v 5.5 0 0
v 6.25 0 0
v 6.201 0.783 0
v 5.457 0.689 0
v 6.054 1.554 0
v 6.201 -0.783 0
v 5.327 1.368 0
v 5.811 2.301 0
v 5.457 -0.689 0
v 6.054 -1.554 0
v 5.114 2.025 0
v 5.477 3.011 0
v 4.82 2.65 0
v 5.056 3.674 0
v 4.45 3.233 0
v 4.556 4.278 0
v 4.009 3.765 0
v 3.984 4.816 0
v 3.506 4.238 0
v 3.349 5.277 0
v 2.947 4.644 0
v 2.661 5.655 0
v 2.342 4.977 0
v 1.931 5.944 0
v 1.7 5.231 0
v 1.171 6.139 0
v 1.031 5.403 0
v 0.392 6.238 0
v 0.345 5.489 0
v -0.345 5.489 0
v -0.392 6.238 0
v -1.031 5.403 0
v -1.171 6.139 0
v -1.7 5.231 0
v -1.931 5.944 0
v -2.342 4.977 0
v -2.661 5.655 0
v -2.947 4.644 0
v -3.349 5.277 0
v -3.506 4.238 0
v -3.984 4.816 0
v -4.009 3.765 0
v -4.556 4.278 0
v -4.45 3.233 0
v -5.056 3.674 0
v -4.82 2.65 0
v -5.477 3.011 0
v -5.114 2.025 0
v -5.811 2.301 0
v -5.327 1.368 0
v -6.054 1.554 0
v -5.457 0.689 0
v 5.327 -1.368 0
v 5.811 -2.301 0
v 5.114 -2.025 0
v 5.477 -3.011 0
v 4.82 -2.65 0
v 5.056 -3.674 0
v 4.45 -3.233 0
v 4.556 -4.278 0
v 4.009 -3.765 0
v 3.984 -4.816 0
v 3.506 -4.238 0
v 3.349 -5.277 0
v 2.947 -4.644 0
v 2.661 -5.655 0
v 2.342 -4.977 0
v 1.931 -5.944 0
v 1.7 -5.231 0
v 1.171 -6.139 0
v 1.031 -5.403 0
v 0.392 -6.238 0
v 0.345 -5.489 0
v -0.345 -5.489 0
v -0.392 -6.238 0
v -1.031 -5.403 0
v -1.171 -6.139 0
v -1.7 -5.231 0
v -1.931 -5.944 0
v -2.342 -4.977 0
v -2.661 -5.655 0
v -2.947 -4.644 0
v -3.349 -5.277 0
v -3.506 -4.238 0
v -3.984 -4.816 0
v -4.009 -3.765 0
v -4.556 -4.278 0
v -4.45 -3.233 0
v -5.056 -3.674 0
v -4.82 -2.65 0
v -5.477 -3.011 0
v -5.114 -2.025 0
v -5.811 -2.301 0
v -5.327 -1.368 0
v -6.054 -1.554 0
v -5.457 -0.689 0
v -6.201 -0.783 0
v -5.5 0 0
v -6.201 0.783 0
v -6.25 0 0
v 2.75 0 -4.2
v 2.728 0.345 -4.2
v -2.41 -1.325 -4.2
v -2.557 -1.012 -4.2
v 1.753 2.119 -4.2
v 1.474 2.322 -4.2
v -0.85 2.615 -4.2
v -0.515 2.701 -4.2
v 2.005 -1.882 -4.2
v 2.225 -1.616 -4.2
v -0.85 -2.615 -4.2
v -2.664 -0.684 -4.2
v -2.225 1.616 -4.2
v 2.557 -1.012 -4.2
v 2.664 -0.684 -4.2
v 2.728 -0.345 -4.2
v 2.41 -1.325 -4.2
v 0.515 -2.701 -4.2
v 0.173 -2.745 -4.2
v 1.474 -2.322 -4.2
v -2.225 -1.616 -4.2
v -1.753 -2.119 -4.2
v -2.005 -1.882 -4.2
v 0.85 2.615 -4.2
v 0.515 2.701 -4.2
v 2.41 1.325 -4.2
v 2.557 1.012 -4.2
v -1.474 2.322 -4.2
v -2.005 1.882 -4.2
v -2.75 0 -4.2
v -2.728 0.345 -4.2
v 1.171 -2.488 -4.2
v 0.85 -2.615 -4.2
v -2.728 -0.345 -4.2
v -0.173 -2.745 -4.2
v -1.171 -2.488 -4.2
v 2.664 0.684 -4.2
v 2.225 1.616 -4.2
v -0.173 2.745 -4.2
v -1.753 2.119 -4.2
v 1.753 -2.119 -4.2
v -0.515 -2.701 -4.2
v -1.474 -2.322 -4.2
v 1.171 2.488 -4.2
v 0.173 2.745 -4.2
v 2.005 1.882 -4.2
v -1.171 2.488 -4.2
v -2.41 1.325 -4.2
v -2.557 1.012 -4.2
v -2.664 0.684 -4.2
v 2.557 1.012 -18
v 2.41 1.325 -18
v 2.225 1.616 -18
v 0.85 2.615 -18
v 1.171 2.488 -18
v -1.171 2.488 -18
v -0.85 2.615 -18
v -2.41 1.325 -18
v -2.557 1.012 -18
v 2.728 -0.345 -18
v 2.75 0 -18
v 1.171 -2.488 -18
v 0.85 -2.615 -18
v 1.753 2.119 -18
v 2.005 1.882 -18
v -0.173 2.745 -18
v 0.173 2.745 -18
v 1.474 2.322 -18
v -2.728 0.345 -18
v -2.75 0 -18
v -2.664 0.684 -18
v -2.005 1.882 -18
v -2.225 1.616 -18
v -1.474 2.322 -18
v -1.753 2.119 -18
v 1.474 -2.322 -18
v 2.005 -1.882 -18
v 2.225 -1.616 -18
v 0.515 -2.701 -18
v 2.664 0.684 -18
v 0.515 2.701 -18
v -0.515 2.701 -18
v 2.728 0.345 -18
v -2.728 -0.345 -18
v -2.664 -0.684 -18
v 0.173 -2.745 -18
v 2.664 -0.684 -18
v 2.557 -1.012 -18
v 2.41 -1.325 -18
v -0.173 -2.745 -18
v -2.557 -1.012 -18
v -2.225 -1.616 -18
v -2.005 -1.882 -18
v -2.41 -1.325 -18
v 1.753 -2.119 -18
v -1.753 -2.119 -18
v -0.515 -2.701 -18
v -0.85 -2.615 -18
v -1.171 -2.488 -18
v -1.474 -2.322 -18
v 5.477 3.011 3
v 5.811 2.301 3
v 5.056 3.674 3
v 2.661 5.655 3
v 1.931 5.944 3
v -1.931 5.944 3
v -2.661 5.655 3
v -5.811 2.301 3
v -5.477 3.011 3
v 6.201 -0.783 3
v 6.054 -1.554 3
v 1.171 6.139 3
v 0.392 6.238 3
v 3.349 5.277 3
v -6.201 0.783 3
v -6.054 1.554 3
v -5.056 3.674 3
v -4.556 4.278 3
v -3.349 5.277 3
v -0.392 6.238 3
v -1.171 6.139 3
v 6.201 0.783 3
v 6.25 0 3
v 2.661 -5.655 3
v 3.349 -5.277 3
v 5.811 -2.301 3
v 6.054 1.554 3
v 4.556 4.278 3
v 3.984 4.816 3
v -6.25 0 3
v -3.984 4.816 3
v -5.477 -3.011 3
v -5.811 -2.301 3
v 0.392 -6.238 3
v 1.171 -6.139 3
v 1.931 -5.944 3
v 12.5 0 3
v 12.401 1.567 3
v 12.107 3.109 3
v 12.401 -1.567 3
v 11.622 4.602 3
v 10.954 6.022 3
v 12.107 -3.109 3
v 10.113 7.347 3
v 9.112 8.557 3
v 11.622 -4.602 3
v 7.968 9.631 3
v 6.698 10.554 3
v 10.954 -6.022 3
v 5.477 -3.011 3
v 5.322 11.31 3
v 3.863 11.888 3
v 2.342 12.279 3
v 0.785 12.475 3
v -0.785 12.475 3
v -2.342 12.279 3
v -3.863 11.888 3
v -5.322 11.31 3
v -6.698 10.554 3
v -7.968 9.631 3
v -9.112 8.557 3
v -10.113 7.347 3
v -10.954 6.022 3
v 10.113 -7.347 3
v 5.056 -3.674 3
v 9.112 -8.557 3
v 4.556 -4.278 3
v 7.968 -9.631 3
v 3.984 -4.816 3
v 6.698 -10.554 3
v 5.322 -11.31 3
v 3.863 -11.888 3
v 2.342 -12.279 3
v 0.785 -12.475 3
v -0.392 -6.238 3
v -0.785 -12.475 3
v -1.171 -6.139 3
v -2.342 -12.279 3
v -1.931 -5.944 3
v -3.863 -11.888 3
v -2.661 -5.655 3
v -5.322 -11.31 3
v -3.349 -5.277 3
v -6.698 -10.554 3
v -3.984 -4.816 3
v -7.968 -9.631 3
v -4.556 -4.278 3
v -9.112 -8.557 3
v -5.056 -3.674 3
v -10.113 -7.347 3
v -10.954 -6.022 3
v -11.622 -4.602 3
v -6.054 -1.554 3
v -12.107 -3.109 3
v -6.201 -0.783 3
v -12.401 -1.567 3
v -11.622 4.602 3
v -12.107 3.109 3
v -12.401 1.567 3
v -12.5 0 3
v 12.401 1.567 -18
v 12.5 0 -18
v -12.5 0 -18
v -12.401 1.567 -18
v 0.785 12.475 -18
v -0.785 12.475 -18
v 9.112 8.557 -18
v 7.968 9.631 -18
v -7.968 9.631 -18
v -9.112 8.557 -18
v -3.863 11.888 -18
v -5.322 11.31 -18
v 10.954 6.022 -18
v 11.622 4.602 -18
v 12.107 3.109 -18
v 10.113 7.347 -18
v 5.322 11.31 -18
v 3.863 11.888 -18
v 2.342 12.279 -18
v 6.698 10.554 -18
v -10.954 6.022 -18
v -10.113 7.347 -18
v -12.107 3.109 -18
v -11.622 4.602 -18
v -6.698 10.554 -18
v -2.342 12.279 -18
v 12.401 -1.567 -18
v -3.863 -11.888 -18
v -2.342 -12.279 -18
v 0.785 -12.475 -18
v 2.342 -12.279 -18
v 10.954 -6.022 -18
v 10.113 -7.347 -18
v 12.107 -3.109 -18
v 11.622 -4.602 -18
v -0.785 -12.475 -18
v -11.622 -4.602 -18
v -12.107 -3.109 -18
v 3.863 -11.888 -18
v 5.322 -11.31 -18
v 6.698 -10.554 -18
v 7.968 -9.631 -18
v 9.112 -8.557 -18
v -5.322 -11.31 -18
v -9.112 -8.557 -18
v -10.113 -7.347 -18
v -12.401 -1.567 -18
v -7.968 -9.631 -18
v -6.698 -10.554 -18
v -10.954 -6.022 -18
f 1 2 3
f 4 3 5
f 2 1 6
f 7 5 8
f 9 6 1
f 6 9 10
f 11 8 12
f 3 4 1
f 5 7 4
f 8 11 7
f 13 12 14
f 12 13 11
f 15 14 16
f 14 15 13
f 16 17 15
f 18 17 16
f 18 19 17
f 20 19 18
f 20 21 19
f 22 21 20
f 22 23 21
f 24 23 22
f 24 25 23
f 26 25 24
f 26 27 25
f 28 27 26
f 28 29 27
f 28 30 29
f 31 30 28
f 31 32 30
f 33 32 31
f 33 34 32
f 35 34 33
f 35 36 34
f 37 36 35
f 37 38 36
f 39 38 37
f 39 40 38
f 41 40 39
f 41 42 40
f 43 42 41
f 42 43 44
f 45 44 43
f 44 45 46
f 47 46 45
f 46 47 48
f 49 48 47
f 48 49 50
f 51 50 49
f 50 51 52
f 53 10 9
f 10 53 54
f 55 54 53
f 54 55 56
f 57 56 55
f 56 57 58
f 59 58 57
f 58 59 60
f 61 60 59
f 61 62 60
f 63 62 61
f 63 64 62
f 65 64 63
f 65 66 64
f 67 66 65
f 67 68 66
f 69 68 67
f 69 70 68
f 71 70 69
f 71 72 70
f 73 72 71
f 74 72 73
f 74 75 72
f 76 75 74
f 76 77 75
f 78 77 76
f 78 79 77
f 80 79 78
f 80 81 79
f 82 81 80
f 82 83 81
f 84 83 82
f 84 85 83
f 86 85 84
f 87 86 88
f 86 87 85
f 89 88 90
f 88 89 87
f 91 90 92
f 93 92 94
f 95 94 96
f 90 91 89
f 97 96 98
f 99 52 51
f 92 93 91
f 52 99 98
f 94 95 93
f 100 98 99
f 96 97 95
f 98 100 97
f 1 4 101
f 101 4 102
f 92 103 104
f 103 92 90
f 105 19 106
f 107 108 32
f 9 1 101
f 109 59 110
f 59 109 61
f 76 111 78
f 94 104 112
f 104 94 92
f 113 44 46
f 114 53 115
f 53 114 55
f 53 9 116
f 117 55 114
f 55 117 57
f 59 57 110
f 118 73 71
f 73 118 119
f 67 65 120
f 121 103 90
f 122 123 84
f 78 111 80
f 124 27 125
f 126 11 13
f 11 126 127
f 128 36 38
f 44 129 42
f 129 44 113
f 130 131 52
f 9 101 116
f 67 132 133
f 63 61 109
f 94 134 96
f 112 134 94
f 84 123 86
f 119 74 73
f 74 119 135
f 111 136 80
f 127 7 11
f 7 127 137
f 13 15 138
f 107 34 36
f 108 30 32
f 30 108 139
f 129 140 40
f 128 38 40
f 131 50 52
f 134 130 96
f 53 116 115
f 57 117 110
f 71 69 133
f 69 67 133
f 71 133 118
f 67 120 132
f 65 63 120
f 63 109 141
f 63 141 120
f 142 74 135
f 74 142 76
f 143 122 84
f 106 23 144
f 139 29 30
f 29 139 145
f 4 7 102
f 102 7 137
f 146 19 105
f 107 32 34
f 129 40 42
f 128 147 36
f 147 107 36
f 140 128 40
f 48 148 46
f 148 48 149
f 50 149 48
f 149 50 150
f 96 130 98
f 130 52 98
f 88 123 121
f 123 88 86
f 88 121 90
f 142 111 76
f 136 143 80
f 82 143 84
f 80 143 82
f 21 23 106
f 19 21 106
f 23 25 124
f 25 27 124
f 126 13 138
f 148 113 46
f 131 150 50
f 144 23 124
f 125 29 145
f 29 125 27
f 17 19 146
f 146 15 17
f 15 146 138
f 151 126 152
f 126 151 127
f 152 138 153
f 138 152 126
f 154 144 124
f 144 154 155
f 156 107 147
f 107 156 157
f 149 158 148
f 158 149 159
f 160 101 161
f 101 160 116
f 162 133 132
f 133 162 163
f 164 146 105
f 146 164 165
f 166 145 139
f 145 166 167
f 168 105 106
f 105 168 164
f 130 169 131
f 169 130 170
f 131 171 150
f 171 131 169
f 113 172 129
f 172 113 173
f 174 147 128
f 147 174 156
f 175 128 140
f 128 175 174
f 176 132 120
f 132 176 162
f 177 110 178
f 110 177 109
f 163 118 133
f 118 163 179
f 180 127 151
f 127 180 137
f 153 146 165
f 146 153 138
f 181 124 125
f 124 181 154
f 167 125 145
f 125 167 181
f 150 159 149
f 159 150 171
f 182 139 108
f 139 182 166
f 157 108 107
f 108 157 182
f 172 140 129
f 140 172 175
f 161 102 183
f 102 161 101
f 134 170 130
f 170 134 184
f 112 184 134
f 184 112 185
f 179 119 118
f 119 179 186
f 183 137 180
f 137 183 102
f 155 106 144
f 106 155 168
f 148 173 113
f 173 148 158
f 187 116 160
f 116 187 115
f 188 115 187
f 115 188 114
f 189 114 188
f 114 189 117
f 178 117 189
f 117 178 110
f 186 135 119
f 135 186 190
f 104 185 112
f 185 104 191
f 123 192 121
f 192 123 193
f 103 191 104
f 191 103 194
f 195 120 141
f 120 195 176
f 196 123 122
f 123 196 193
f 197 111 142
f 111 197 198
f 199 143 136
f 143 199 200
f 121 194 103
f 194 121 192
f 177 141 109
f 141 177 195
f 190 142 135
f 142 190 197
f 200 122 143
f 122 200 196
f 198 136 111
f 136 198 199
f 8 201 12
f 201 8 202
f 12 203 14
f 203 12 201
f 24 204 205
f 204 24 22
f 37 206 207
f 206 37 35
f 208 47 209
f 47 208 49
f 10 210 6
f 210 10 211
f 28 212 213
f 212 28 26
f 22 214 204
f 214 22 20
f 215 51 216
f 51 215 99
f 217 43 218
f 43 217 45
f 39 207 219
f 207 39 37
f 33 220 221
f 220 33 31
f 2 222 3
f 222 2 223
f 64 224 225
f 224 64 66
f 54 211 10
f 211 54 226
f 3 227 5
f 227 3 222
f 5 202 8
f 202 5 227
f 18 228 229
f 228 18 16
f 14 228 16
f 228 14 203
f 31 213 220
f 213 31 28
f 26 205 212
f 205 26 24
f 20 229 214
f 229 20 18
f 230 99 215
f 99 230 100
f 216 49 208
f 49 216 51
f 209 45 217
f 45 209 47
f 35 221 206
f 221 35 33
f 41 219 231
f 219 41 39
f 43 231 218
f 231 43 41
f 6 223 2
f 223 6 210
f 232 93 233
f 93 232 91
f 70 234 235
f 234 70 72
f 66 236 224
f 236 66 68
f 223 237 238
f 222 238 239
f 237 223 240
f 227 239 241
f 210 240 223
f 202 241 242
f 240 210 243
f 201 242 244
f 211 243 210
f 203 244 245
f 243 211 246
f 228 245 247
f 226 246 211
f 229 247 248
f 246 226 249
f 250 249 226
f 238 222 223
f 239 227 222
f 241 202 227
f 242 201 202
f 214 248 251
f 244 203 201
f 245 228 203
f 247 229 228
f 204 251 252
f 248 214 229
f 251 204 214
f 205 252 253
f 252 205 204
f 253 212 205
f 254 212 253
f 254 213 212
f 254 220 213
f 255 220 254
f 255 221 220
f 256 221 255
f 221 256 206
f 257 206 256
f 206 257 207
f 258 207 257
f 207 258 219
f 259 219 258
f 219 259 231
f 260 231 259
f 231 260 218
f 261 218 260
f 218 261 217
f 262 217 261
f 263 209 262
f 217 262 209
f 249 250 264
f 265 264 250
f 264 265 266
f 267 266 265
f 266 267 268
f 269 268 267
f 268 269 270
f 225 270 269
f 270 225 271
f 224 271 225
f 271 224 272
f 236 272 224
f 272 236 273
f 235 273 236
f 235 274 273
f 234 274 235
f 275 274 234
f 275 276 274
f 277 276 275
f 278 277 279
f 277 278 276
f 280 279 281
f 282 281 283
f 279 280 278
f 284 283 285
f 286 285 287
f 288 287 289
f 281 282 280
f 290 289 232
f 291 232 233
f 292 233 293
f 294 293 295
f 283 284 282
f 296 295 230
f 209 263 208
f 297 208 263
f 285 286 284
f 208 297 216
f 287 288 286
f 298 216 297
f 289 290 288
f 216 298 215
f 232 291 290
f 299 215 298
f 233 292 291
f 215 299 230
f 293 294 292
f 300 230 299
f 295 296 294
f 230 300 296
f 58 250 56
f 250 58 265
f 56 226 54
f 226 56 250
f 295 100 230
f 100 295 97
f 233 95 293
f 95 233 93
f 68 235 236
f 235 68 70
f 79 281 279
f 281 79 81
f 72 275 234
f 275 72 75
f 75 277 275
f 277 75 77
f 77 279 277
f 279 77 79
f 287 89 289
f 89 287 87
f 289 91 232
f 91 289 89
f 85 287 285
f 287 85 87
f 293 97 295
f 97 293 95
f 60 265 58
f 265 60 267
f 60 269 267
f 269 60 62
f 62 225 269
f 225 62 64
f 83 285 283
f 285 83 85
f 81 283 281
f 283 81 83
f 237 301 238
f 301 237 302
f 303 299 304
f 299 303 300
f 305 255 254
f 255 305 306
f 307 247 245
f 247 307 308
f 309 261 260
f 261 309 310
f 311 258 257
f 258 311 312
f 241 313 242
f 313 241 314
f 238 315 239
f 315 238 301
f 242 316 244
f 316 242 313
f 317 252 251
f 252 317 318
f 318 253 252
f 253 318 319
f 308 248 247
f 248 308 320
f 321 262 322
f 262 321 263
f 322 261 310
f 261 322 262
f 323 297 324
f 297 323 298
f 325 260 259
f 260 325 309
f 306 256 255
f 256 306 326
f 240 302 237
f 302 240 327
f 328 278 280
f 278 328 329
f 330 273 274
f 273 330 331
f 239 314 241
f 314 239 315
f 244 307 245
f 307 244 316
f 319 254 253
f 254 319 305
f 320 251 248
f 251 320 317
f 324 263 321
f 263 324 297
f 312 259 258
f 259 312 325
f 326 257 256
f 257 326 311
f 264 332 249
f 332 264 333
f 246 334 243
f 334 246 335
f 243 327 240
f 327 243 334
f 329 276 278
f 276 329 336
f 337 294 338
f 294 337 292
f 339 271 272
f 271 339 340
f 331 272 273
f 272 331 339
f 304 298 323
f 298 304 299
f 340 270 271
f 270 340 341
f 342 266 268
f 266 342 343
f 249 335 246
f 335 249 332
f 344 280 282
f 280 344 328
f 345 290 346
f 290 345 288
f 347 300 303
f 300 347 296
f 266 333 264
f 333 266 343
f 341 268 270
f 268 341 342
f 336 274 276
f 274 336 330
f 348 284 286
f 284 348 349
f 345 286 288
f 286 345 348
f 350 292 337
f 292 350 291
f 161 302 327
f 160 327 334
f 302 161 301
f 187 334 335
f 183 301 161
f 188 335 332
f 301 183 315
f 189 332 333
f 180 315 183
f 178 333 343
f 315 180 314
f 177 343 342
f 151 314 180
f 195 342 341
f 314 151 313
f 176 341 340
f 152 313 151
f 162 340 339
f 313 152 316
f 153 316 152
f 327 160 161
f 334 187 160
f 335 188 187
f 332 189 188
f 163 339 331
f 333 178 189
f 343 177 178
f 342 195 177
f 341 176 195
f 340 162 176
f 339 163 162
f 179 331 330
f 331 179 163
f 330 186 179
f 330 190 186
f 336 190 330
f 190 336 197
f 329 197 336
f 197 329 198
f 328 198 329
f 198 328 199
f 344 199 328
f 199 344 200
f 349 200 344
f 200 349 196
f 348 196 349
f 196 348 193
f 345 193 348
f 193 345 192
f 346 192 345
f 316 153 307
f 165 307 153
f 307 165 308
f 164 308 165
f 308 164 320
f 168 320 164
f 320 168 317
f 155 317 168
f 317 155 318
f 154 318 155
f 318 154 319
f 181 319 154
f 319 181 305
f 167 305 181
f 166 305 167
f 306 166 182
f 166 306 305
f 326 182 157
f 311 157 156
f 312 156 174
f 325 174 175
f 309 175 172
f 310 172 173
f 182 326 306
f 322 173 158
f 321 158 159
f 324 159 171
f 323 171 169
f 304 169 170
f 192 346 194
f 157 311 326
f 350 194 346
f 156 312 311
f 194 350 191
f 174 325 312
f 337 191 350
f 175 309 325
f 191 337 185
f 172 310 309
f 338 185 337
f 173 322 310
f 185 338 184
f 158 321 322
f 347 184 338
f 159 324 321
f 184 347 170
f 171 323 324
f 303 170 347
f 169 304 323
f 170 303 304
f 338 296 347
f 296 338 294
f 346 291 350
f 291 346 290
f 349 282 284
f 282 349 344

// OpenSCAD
$fn = 50;


difference() {
	union() {
		translate(v = [0, 0, -18.0000000000]) {
			cylinder(h = 21, r = 12.5000000000);
		}
	}
	union() {
		translate(v = [0, 0, 0]) {
			rotate(a = [0, 0, 0]) {
				difference() {
					union() {
						translate(v = [0, 0, -21.0000000000]) {
							cylinder(h = 21, r = 2.2500000000);
						}
						translate(v = [0, 0, -4.2000000000]) {
							cylinder(h = 4.2000000000, r1 = 2.7500000000, r2 = 5.5000000000);
						}
						translate(v = [0, 0, -21.0000000000]) {
							cylinder(h = 21, r = 2.7500000000);
						}
						translate(v = [0, 0, -21.0000000000]) {
							cylinder(h = 21, r = 2.2500000000);
						}
					}
					union();
				}
			}
		}
		#cylinder(h = 3, r = 6.2500000000);
	}
}
